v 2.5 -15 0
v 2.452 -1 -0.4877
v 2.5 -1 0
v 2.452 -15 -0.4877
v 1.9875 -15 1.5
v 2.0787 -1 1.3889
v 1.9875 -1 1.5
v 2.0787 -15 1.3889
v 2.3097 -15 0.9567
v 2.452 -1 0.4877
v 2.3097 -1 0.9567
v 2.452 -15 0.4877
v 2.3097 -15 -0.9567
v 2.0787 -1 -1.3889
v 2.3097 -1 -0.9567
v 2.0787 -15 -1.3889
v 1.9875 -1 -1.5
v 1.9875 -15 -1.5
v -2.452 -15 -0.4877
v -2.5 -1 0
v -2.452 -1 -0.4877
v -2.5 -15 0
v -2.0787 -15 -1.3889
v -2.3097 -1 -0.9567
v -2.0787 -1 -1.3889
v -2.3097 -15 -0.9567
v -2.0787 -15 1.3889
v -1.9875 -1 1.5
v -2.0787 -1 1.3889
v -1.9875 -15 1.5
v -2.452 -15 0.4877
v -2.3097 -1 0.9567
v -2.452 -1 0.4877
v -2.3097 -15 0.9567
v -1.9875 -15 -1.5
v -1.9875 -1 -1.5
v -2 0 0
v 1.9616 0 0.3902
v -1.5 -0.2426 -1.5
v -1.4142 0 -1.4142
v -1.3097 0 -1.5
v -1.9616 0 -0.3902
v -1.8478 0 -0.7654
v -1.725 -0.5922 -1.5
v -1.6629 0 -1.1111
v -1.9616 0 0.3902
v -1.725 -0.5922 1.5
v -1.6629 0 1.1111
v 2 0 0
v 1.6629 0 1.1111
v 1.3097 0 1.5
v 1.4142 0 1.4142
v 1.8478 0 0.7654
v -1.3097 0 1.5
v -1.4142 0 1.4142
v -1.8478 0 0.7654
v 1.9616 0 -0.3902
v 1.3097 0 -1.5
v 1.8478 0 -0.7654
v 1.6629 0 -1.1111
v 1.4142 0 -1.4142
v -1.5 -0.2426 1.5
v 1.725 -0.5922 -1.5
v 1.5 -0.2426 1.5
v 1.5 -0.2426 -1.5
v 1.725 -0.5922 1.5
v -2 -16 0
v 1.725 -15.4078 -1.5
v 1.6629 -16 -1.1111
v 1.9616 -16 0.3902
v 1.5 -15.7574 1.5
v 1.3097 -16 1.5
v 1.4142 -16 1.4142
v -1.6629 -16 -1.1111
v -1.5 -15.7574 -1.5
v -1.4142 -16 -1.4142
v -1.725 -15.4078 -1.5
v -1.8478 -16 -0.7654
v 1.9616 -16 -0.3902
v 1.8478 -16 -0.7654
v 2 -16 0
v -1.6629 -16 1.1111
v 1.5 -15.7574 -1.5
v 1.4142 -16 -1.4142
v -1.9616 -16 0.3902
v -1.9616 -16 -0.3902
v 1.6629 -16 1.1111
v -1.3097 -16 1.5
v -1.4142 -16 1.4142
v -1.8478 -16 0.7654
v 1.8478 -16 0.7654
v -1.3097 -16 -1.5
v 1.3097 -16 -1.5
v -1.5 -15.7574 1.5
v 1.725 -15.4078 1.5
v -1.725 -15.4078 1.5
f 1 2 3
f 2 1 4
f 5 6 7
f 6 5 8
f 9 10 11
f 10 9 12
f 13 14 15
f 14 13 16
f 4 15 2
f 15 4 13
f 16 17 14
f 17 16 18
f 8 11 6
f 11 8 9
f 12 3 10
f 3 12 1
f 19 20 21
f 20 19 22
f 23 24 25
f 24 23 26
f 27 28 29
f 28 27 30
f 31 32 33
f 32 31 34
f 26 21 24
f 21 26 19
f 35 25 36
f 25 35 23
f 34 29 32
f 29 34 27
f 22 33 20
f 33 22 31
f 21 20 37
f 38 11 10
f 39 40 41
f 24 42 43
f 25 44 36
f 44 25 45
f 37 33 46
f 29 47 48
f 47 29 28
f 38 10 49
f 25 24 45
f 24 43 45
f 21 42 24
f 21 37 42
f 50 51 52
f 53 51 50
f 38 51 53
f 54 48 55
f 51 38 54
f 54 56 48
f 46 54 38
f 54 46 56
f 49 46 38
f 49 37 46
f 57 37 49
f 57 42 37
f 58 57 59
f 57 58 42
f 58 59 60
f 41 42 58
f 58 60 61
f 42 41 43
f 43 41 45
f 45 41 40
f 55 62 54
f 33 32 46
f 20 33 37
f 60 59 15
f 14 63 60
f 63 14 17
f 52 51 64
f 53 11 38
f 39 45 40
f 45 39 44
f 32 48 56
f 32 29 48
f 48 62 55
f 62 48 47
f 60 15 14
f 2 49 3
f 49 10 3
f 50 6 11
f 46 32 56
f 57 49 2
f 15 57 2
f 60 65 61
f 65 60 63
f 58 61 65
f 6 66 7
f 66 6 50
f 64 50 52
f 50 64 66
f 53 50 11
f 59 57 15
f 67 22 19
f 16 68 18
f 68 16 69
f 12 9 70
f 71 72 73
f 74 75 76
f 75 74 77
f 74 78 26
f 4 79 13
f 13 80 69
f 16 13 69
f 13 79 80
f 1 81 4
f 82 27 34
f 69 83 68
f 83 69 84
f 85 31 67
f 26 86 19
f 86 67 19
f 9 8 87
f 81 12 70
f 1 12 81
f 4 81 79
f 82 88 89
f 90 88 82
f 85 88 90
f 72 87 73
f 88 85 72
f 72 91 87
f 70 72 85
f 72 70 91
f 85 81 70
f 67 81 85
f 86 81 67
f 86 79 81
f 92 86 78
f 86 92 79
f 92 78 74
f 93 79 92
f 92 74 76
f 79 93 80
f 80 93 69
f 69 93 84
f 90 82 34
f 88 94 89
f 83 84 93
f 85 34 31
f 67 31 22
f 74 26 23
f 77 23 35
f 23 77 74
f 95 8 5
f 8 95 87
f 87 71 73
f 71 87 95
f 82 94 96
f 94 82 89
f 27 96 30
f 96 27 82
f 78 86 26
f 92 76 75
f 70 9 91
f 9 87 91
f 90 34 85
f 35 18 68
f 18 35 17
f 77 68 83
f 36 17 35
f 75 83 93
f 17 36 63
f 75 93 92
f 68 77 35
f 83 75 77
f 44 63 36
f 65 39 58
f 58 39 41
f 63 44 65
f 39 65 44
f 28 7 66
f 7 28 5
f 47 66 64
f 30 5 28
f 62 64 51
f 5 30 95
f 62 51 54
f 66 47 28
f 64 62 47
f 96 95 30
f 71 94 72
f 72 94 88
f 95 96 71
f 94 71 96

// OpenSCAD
rotate([90,90,0]) difference() {
    union() {
        translate([0, 0, 1]) cylinder(r=2.5,h=14,$fn=32);
        cylinder(r1=2,r2=2.5,h=1,$fn=32);
        translate([0, 0, 15]) cylinder(r1=2.5,r2=2,h=1,$fn=32);
    }
    translate([1.5,-5,-1]) cube([10,10,20]);
    translate([-1.5-10,-5,-1]) cube([10,10,20]);
}
